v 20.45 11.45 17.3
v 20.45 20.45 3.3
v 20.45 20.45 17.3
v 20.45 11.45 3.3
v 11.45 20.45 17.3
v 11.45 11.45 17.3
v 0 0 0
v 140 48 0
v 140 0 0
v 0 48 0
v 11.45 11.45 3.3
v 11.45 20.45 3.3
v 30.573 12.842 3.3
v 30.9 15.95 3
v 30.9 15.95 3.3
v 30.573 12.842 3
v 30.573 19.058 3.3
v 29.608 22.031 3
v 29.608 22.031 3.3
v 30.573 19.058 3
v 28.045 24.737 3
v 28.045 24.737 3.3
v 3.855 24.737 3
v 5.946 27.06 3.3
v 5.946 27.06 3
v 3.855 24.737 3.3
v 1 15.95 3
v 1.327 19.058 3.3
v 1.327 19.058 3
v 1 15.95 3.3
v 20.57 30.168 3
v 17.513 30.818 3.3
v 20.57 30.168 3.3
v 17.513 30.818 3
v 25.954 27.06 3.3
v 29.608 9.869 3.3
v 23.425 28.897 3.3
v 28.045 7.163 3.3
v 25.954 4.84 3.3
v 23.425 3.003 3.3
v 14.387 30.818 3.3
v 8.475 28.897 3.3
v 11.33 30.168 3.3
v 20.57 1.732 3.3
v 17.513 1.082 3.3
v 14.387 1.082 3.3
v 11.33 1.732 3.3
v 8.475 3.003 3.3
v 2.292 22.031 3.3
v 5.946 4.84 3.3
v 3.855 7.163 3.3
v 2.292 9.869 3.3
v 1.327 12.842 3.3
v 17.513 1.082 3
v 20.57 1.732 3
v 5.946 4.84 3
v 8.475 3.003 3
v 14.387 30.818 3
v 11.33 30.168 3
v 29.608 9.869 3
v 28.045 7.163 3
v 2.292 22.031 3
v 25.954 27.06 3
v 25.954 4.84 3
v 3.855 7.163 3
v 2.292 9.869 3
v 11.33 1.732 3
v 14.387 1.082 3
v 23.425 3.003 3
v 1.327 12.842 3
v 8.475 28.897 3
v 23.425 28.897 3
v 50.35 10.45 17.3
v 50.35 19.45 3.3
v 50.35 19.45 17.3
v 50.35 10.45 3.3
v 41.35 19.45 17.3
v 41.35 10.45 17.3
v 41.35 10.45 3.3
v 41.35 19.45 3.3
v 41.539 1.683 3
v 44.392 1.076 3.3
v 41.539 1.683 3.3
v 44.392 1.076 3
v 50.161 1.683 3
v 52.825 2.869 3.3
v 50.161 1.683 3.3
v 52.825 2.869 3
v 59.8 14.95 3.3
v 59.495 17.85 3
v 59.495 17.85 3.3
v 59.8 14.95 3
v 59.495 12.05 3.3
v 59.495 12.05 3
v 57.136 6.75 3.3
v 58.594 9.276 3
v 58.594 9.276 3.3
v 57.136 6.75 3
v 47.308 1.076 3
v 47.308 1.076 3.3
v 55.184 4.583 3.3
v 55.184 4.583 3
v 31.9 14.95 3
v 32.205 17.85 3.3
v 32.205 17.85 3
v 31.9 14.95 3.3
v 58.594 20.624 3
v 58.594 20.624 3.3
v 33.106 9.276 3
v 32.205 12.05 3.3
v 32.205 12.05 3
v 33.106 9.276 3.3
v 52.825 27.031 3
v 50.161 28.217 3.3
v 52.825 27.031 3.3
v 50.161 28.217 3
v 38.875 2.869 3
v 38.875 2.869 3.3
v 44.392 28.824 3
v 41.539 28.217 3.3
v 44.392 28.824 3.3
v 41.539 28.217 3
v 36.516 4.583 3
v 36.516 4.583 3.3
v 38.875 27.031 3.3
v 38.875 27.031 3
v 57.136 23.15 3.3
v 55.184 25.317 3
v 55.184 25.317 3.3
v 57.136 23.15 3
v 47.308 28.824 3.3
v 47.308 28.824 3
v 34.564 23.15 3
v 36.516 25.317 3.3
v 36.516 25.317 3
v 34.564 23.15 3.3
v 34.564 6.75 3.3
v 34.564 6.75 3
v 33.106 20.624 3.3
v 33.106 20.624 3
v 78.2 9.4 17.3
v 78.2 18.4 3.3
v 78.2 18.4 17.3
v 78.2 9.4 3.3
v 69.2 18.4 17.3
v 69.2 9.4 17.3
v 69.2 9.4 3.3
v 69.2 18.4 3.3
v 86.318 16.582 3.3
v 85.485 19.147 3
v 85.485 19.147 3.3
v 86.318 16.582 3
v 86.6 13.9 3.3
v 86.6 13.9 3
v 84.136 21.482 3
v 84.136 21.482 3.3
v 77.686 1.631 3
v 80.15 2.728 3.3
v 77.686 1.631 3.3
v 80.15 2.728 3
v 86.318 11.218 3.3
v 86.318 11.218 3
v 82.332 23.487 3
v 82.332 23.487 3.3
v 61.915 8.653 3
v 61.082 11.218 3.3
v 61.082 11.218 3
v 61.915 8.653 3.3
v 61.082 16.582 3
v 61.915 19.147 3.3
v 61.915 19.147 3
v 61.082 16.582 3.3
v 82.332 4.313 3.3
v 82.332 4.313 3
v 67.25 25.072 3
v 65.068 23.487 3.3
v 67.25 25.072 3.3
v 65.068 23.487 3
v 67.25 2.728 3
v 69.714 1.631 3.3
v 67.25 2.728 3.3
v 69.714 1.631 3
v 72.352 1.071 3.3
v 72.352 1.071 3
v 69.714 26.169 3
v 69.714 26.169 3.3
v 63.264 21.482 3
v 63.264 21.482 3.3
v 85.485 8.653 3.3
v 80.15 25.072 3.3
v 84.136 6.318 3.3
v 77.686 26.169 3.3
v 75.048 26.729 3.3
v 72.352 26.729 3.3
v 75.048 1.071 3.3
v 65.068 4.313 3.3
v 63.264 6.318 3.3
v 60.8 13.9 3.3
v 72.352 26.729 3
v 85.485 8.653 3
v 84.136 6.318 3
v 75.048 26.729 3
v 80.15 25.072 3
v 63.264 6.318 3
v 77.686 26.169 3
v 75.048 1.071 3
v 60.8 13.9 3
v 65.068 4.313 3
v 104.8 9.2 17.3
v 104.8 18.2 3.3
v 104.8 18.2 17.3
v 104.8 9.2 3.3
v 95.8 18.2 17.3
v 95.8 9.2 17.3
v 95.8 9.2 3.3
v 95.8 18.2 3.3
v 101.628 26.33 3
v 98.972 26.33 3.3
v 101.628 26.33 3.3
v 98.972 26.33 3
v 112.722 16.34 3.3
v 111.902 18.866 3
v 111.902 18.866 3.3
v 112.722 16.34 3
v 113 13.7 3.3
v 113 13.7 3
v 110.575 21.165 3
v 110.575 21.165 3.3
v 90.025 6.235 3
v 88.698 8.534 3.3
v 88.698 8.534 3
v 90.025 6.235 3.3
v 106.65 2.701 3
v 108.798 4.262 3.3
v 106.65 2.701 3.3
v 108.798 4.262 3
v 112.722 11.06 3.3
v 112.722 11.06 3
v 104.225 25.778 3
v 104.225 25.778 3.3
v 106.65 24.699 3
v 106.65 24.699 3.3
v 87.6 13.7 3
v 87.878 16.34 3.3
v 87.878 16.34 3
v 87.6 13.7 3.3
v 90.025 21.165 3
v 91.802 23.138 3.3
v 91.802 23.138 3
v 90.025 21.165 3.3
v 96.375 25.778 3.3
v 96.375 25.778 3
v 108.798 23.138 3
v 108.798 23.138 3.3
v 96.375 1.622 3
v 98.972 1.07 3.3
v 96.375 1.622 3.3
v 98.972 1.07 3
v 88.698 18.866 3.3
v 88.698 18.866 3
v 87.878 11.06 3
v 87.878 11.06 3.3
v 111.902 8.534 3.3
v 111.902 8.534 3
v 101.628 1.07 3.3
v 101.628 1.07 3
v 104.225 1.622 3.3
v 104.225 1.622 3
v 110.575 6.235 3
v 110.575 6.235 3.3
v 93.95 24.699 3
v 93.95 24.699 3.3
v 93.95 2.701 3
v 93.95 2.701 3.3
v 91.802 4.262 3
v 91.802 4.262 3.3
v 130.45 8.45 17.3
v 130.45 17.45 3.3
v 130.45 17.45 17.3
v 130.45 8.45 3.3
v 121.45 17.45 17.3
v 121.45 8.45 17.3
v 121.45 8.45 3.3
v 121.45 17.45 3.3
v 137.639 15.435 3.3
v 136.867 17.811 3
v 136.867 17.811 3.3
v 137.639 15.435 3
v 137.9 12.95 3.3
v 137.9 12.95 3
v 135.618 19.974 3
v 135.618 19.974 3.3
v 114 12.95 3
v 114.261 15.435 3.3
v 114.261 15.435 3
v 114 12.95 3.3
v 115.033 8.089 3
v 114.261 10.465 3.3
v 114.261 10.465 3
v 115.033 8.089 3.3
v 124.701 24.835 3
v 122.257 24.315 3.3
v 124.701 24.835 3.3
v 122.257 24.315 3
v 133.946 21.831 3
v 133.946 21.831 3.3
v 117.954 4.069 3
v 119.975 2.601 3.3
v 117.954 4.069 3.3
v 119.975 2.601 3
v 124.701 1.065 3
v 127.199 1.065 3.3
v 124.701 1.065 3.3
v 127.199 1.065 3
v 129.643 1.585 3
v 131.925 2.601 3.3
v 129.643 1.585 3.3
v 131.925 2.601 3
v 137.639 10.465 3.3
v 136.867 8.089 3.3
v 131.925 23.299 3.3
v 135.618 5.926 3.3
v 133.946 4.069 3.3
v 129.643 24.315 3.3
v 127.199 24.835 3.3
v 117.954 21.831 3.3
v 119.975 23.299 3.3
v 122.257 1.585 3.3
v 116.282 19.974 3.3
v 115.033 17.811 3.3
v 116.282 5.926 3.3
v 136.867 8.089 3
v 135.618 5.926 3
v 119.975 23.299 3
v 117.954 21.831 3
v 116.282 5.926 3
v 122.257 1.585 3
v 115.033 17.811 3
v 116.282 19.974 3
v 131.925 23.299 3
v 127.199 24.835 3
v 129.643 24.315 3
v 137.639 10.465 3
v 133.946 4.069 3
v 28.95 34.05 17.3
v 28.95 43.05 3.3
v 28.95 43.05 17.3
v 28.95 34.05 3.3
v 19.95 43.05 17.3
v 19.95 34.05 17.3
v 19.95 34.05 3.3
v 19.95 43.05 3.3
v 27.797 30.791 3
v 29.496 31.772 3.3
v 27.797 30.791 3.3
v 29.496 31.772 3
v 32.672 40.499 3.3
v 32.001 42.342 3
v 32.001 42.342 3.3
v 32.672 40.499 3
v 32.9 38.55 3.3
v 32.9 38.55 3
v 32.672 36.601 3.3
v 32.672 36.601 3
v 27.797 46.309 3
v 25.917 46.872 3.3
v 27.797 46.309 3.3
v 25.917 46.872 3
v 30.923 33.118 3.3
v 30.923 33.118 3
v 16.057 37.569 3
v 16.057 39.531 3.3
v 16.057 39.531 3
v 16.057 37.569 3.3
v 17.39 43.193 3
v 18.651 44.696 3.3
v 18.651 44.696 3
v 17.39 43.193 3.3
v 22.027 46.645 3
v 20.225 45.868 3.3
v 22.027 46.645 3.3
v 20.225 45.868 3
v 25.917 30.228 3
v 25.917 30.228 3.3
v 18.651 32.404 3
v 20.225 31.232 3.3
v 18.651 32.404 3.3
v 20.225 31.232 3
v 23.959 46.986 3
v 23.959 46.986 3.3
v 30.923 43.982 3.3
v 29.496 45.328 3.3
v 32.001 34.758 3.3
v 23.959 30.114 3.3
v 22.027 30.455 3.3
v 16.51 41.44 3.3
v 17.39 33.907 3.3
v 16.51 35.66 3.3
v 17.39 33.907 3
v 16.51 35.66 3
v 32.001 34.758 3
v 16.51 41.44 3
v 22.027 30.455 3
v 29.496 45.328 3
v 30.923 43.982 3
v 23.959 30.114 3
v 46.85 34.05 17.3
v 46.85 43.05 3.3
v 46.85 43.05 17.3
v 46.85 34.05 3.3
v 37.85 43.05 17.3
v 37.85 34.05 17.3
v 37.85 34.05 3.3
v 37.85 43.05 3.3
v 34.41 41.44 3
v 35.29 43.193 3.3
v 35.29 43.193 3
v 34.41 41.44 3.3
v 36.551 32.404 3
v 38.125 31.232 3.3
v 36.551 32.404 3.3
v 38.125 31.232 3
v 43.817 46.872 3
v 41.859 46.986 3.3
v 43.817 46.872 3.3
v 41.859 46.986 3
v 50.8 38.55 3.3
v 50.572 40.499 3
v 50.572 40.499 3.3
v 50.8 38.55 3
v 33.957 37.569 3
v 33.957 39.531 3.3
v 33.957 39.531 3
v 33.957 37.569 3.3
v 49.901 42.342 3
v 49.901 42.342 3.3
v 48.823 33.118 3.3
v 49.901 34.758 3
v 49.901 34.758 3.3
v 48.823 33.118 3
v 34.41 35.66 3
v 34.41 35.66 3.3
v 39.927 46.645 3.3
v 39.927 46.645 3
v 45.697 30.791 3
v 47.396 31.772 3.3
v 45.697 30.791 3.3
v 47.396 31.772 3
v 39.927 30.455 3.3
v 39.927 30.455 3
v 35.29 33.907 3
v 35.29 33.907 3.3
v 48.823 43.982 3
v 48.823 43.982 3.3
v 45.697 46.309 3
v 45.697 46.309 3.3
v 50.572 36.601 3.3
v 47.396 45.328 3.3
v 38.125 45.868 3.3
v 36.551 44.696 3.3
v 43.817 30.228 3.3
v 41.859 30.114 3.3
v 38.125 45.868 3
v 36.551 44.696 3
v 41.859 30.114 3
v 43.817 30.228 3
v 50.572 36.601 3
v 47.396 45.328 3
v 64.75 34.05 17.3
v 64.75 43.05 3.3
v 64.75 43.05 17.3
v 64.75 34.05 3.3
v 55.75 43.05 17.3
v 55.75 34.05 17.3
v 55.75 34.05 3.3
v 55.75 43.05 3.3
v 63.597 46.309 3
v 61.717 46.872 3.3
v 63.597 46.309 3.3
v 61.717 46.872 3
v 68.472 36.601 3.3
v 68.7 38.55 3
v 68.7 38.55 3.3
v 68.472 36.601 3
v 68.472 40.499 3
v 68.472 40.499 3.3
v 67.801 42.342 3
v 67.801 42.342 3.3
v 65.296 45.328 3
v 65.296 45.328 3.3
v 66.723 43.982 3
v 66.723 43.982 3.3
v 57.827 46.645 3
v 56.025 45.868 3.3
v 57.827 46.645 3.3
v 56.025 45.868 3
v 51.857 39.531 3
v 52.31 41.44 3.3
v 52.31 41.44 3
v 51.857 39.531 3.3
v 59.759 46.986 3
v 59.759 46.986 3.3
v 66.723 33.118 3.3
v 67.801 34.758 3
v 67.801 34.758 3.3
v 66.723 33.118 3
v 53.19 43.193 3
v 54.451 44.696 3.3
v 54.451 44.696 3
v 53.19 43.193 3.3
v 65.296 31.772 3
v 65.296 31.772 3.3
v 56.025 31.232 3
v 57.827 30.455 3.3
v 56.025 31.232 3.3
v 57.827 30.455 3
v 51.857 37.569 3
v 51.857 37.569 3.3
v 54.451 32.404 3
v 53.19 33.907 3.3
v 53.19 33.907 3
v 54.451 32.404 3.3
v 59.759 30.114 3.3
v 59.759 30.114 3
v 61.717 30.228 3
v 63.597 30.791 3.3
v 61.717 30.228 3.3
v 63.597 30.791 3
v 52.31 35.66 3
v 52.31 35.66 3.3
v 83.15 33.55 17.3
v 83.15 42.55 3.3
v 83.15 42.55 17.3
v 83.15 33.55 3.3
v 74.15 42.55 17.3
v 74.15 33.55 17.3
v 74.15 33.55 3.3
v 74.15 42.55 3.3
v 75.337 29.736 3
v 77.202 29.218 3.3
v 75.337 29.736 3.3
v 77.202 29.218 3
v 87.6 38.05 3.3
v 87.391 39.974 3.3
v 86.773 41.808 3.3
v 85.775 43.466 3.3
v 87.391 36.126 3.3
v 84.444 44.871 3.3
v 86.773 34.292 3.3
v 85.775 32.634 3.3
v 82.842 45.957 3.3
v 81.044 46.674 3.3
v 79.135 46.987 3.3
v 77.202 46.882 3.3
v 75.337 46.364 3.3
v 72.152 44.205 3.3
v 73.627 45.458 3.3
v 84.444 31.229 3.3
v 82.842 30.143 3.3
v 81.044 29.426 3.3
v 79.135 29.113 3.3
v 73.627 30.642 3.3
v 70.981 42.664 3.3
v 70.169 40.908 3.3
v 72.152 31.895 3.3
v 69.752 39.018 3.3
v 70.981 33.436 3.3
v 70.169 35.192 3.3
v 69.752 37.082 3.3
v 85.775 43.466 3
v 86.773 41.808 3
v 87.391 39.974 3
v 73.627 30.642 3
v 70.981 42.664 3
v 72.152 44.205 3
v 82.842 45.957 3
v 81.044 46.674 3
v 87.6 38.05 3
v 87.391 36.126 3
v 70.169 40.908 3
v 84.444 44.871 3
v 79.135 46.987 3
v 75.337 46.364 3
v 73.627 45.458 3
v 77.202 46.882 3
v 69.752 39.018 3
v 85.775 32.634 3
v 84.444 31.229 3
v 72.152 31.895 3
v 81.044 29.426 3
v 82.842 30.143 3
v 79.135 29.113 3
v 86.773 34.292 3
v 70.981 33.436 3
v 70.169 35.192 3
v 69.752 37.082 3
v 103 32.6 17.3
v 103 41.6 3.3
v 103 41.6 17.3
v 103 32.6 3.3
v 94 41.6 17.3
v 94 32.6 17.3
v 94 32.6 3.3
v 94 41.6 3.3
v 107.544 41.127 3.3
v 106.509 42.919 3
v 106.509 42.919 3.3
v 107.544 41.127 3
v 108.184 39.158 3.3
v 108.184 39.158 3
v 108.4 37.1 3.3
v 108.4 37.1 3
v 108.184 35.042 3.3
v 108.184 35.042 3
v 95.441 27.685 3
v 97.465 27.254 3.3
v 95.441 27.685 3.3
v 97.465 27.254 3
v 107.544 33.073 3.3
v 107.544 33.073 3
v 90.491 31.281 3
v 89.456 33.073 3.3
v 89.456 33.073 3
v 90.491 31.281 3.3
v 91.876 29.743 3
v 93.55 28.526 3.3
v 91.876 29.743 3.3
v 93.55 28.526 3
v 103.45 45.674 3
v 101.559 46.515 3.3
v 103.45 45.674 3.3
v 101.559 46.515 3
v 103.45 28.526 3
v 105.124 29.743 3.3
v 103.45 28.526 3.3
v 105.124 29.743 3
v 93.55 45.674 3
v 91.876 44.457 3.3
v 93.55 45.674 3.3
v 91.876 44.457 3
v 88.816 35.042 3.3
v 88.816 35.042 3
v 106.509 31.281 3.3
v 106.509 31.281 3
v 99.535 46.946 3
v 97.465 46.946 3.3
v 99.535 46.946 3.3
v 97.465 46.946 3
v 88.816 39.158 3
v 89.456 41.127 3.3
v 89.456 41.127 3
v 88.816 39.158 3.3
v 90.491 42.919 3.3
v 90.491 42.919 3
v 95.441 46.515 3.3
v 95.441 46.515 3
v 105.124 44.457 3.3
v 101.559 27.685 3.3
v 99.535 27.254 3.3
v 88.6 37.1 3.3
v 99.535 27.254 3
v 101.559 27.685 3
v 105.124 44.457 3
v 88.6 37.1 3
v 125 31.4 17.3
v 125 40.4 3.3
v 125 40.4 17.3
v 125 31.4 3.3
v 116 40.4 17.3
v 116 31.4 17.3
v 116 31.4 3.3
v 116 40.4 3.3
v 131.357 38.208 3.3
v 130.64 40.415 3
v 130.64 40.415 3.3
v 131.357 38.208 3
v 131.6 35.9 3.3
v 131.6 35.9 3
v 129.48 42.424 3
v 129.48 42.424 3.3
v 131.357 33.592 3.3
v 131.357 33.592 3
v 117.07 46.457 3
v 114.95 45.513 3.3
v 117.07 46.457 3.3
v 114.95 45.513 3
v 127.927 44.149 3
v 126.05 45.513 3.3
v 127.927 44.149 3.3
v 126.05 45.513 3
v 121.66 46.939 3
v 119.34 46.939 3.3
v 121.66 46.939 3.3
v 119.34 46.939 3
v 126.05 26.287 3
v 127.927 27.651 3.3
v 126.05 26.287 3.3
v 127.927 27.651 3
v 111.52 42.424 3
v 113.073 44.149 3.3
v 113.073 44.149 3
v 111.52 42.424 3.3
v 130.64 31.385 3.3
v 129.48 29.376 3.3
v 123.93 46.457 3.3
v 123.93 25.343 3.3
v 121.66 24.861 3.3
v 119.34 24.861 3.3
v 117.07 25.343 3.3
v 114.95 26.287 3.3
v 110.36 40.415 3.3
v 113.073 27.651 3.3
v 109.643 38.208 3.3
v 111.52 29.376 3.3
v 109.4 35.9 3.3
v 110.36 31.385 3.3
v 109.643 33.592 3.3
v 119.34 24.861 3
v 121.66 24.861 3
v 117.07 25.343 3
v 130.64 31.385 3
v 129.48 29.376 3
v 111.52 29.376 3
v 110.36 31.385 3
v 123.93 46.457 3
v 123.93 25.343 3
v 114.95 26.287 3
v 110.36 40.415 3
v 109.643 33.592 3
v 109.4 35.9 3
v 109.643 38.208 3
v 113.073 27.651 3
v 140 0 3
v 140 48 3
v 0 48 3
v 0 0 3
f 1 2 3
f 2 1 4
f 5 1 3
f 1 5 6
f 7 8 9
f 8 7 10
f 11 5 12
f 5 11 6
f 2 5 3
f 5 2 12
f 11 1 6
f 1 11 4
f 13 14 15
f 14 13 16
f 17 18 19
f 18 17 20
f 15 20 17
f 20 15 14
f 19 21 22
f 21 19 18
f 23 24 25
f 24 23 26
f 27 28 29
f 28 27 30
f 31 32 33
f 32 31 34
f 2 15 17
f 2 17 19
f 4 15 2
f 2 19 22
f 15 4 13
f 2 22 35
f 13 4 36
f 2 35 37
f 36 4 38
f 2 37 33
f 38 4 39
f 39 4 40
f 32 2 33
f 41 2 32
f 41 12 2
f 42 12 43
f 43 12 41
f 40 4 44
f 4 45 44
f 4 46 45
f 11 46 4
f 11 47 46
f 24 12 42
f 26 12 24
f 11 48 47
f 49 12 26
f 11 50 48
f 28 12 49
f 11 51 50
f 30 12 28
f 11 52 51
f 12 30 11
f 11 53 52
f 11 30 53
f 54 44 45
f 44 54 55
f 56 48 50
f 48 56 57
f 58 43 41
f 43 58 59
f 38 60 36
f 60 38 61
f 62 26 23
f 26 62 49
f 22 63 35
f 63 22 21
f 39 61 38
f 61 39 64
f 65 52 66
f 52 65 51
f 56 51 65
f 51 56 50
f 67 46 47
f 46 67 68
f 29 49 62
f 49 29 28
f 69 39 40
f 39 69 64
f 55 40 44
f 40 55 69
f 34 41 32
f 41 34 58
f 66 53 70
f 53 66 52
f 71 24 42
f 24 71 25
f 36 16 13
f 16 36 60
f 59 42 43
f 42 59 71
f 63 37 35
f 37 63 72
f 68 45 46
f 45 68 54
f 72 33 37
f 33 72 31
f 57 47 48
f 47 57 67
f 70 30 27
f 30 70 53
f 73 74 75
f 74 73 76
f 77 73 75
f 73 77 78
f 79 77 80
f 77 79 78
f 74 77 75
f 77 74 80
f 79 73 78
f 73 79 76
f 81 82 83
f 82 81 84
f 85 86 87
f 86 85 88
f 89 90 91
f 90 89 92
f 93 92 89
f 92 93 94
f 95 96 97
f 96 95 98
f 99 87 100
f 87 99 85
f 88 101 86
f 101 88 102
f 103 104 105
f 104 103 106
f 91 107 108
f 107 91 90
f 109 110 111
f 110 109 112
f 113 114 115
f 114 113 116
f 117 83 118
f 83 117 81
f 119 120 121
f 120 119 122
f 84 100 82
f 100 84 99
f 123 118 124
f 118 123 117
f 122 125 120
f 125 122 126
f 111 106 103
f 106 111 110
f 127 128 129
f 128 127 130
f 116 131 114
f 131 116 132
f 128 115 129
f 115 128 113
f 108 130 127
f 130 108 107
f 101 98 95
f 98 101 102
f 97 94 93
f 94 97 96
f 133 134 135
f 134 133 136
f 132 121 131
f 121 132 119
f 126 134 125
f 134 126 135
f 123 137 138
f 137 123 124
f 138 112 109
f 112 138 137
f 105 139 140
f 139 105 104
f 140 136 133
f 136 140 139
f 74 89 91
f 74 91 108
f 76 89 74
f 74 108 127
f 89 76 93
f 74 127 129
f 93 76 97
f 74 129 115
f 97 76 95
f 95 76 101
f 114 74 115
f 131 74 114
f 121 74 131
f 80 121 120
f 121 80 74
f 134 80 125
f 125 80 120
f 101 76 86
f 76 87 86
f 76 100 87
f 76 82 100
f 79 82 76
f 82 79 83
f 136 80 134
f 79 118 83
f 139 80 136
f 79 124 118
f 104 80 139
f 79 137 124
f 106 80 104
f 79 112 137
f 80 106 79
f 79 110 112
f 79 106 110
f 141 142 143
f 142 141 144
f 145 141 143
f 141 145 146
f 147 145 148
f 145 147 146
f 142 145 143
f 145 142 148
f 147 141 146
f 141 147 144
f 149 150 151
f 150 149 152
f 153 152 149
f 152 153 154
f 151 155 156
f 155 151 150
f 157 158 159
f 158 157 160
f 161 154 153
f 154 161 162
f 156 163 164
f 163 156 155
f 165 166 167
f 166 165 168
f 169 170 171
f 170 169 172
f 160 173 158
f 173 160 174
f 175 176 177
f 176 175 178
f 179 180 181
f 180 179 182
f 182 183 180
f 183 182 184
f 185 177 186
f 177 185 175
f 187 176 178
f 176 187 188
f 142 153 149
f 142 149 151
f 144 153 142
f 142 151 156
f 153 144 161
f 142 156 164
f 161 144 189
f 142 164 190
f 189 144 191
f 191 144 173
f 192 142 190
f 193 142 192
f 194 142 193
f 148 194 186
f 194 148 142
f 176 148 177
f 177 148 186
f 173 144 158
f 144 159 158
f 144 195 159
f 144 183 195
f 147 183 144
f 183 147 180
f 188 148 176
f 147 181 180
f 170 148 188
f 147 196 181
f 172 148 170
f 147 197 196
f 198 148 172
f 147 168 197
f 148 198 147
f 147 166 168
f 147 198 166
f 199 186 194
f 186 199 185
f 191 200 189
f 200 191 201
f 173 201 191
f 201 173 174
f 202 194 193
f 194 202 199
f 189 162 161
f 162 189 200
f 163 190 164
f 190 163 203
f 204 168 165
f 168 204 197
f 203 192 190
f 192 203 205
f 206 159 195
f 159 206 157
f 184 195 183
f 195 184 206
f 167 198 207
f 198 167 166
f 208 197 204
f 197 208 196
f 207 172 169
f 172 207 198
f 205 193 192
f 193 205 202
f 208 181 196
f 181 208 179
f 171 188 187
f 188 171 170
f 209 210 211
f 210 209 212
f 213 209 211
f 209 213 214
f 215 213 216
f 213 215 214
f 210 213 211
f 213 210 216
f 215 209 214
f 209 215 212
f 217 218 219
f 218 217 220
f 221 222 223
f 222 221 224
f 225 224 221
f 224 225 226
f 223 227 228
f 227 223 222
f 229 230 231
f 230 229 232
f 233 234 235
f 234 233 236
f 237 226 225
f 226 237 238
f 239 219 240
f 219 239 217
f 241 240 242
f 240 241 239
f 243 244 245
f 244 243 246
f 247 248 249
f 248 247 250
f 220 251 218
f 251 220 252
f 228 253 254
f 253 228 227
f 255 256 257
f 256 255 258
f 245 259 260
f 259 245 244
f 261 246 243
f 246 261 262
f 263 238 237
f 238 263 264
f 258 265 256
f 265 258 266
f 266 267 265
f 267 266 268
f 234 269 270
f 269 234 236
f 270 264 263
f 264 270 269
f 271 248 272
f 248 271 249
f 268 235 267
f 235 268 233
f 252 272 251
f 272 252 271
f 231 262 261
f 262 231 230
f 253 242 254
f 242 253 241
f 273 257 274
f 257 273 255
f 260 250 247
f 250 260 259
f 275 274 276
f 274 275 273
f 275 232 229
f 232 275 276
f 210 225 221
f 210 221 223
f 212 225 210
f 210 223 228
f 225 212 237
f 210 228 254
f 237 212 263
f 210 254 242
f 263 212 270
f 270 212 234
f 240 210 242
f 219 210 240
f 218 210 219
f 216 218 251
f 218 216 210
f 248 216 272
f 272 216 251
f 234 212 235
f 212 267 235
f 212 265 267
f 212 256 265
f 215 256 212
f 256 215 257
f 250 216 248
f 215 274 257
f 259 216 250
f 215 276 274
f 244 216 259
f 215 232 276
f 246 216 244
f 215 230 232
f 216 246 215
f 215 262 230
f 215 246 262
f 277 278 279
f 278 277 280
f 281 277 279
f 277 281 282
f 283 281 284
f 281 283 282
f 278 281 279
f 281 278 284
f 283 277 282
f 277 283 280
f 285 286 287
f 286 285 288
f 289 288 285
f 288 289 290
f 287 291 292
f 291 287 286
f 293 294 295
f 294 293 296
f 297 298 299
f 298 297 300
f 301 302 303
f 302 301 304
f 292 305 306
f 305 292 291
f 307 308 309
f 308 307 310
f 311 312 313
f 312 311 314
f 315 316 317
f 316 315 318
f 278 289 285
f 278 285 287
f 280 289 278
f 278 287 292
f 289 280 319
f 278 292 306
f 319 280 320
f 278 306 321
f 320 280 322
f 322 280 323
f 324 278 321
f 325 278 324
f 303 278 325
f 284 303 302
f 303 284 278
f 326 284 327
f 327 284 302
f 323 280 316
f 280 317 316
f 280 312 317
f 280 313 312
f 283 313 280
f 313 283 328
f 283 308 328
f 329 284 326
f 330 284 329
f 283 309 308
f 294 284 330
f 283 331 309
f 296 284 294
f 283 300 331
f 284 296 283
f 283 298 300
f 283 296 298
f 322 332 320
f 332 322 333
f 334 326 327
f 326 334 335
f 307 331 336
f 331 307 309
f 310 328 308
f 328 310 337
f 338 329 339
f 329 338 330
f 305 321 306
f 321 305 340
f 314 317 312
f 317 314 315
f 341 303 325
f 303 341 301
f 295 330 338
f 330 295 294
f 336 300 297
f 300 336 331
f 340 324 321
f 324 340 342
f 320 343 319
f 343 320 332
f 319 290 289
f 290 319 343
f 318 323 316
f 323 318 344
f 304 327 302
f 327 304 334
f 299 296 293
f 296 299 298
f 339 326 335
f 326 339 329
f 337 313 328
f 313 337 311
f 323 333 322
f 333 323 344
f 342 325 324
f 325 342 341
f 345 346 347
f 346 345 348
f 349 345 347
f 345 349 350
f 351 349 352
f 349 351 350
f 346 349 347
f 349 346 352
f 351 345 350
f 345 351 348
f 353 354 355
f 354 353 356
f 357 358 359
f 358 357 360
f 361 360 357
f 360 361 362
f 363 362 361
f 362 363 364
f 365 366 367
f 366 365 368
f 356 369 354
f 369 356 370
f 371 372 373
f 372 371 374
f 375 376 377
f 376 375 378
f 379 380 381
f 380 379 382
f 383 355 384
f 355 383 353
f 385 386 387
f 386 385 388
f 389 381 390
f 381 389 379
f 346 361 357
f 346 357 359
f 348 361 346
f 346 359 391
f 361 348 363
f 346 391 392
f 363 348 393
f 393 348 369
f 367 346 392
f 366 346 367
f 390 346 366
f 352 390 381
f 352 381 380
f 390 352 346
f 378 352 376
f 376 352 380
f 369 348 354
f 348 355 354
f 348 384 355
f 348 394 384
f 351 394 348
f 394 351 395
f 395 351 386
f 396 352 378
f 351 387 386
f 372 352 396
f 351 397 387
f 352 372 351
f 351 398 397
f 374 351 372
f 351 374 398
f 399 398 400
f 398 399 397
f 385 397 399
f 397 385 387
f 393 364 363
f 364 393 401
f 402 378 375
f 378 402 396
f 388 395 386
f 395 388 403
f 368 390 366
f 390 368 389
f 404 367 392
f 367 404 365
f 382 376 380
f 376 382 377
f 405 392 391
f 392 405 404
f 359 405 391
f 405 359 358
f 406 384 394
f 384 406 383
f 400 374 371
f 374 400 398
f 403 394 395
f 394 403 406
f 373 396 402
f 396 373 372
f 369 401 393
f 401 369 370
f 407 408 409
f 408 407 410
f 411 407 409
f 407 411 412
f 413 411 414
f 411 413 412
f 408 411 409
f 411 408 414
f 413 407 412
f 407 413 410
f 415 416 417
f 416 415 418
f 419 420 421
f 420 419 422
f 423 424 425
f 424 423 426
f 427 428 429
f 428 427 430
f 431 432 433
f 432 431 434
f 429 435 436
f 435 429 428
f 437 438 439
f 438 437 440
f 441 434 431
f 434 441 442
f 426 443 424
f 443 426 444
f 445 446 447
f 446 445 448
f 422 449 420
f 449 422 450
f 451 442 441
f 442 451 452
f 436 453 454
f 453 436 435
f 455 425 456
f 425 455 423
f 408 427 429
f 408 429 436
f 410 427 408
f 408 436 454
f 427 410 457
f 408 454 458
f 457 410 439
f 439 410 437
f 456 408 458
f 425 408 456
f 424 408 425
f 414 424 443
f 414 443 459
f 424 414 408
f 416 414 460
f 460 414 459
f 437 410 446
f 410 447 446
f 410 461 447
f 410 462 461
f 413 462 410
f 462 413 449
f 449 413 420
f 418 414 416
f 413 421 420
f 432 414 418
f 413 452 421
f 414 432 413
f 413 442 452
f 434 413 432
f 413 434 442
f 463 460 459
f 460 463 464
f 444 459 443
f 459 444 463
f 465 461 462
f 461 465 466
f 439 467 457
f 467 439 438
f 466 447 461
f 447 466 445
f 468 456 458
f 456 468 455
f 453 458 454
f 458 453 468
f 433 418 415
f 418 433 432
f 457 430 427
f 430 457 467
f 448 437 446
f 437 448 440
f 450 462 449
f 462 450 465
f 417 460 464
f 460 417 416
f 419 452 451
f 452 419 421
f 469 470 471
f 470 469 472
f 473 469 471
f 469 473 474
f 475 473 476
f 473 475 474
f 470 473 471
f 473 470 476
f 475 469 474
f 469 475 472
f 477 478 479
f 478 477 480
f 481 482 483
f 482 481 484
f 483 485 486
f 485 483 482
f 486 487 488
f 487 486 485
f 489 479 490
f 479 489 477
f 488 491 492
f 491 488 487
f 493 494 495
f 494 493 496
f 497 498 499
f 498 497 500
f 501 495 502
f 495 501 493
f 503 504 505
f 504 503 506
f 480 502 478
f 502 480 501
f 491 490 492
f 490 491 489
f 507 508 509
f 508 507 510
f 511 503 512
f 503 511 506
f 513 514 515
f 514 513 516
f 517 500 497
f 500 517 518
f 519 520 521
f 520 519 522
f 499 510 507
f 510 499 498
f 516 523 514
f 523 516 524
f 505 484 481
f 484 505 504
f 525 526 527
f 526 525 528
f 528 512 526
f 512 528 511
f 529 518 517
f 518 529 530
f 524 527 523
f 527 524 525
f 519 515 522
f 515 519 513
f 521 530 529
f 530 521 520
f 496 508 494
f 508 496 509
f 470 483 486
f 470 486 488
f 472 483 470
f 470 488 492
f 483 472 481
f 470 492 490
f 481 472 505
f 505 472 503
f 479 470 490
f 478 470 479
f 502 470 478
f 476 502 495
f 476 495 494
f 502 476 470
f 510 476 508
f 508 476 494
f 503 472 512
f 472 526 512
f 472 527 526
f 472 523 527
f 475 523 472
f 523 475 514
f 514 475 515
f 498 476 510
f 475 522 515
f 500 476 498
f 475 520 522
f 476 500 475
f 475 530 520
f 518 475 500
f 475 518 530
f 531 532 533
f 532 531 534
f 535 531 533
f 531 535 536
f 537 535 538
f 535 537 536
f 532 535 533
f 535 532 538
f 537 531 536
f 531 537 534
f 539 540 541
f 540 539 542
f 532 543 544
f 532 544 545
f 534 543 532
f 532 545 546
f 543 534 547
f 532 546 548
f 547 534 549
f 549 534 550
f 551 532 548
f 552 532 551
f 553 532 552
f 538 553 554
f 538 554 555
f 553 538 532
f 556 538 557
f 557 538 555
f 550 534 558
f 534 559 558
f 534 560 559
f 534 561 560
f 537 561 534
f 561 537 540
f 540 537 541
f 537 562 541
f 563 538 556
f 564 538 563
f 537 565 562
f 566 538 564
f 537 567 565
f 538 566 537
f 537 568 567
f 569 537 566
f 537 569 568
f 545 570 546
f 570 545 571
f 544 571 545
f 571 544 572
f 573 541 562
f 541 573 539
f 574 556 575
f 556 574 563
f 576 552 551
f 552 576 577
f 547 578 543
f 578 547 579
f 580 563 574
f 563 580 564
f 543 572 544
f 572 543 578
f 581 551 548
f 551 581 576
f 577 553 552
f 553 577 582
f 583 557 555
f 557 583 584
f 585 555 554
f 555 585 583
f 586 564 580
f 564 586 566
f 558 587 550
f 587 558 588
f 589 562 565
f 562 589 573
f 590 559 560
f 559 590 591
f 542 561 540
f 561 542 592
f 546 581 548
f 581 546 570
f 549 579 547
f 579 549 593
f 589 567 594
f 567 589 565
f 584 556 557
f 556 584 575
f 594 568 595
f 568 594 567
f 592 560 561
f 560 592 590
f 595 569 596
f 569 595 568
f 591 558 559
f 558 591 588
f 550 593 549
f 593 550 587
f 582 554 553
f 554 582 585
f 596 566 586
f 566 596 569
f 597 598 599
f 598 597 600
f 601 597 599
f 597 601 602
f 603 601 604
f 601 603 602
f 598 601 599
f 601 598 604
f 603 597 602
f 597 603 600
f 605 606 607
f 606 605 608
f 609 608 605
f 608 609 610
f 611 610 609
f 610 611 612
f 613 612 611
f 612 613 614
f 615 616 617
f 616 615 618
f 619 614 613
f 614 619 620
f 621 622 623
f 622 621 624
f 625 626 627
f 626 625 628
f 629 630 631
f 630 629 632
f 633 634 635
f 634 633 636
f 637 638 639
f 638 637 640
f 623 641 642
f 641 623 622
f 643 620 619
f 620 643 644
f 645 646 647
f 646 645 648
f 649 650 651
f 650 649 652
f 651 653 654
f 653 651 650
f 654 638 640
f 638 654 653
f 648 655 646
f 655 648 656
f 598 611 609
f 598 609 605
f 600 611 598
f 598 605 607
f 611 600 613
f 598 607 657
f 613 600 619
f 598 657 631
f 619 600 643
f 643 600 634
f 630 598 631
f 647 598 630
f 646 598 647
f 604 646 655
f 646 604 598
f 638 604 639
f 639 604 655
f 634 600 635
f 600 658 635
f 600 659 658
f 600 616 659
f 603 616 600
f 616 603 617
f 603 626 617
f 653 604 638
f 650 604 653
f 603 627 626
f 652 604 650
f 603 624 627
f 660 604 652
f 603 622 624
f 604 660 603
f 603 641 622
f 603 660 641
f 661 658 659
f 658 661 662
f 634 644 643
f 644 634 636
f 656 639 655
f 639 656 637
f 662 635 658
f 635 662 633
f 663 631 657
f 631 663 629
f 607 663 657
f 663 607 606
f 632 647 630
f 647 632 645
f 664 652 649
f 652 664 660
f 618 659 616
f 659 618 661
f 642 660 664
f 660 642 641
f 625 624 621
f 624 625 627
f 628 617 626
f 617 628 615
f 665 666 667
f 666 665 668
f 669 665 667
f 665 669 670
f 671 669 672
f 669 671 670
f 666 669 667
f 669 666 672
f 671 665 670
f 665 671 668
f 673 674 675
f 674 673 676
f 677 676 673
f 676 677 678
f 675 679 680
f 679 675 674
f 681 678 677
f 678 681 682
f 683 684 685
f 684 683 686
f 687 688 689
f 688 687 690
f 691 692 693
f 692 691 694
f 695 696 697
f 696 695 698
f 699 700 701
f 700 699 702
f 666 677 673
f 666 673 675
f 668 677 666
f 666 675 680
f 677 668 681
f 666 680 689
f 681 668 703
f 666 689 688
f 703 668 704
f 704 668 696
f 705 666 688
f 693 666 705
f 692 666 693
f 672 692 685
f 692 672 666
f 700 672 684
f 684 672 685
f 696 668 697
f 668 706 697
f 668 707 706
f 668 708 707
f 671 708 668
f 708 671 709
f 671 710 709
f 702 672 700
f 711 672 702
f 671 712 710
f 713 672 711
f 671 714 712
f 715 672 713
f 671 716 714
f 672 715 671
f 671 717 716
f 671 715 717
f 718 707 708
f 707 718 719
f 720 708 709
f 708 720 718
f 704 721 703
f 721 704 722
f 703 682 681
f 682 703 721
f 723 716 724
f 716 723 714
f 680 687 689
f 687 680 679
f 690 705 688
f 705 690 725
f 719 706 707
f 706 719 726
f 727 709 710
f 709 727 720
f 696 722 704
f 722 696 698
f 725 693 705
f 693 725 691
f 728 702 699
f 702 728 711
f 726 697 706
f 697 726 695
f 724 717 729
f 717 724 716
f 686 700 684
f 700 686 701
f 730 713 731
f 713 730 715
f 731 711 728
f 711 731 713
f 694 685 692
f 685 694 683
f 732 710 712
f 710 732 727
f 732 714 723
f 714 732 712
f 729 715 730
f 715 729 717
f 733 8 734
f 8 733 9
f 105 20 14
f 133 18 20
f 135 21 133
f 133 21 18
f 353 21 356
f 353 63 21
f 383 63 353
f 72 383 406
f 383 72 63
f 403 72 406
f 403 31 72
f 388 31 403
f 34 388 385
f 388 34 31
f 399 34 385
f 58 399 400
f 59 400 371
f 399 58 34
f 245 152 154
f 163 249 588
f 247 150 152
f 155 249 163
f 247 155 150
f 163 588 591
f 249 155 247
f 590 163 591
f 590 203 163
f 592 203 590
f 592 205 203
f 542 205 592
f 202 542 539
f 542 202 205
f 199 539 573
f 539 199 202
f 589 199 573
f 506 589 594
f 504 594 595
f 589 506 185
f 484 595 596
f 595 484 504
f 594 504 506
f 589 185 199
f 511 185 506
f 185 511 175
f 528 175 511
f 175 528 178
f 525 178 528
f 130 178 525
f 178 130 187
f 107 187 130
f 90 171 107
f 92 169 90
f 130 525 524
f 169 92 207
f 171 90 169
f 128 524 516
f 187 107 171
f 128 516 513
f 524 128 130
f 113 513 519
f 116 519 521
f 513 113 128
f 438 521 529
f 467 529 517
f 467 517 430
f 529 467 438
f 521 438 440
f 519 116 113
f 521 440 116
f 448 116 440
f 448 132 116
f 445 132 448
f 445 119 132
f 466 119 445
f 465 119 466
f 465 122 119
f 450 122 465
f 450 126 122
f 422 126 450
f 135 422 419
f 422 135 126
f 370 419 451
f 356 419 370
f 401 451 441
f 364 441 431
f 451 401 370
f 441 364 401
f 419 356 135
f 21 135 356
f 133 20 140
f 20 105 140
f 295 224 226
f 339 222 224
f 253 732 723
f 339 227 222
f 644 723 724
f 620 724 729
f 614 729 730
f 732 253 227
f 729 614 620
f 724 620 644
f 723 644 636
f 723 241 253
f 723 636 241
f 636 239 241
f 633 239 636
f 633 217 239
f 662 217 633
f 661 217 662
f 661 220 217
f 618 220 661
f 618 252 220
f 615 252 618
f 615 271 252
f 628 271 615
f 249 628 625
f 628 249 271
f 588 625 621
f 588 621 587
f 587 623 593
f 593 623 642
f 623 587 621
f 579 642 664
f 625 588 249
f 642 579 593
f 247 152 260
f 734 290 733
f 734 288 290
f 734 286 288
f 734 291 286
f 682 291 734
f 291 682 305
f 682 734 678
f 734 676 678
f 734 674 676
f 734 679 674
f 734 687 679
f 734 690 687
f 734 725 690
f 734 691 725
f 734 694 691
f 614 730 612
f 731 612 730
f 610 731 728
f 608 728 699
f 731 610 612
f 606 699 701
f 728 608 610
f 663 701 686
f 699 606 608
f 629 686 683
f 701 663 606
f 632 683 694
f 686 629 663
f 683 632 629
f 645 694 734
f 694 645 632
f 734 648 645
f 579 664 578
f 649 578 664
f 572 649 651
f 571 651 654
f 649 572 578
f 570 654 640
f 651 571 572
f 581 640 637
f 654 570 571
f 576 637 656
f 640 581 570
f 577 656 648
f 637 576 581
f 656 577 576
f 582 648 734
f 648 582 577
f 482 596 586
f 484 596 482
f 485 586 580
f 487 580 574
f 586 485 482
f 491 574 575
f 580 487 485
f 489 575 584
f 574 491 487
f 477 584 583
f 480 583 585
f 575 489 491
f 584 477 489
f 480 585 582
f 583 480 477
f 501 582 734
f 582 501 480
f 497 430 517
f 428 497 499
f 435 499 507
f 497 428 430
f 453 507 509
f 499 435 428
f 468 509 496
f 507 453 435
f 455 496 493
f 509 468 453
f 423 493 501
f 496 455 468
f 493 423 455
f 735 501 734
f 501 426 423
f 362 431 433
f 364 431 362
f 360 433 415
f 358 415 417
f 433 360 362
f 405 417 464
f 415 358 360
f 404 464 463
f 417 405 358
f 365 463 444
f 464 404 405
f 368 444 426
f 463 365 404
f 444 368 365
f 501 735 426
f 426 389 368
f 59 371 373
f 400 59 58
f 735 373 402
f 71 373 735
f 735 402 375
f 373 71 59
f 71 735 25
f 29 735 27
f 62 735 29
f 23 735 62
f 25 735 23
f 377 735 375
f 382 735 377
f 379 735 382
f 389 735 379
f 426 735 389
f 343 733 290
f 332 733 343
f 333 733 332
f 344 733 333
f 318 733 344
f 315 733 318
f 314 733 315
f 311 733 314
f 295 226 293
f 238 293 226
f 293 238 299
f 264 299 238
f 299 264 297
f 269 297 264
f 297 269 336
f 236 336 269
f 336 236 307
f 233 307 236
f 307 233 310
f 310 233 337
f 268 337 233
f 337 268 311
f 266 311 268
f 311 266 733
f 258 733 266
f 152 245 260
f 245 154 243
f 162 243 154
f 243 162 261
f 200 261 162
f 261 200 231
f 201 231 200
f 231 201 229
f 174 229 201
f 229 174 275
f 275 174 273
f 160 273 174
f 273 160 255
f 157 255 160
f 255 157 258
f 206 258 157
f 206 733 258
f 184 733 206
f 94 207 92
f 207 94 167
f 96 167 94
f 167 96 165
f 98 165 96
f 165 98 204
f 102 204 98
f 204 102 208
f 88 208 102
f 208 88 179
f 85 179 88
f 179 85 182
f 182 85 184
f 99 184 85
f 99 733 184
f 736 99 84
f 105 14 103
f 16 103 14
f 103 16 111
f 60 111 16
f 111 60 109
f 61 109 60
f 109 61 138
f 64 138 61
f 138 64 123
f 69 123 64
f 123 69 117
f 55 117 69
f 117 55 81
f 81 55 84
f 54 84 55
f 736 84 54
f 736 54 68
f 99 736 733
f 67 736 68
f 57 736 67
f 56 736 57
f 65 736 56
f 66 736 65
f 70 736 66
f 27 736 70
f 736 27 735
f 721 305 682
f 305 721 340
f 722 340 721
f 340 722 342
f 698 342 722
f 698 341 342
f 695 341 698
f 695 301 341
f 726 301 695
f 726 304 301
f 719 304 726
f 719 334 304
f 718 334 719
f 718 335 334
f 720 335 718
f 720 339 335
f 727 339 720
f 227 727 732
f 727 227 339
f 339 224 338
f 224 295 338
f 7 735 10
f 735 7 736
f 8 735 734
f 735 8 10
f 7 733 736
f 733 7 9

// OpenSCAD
//translate([-140/2, -45/2, 0])
pad_w = 140;
pad_d = 48;
pad_h = 3;
cube([pad_w, pad_d, pad_h]);

module peg(x, y, d)
{
    w = 9;
    h = 17.3;
    translate([x - w/2, y - w/2, 0])
    {
        cube([w, w, h]);
    }
    translate([x, y, 0])
    cylinder(3.3, d/2, d/2);//just for checking
}
d7_8 = 29.9;
d13_16 = 27.9;
d3_4 = 25.8;
d3_4h = 25.4;
d11_16 = 23.9;
d5_8 = 22.2;
d9_16 = 19.8;
d1_2 = 17.9;
d7_16 = 16.9;
d3_8 = 16.9;
d5_16 = 16.9;

row1 = [d7_8, d13_16, d3_4, d3_4h, d11_16];
row2 = [d5_16, d3_8, d7_16, d1_2, d9_16, d5_8];
row1_start_x = 0.0;
row2_start_x = 15.0;

interspace = 1.0;
x_vals = [
    for (
        i = 0, accum = 0.0;
        i < len(row1);
        accum = accum + row1[i] + interspace, i = i + 1
    )
    accum
];

for ( i = [ 0 : len(row1) - 1] )
{
    d = row1[i];
    x = interspace + x_vals[i] + d / 2 + row1_start_x;
    echo(x, d);
    peg(x, d/2 + interspace, d);
}

x_vals2 = [
    for (
        i = 0, accum = 0.0;
        i < len(row2);
        accum = accum + row2[i] + interspace, i = i + 1
    )
    accum
];

for ( i = [ 0 : len(row2) - 1] )
{
    d = row2[i];
    x = interspace + x_vals2[i] + d / 2 + row2_start_x;
    peg(x, pad_d - d/2 - interspace, d);
}
